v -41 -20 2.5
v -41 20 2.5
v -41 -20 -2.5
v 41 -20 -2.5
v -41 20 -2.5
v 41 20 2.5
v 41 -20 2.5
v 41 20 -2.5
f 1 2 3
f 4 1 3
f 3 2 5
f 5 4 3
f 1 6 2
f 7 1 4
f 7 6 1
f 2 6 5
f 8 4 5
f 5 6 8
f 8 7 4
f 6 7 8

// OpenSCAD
polyhedron(points=[[-41.0, -20.0, -2.5], [-41.0, -20.0, 2.5], [-41.0, 20.0, -2.5], [-41.0, 20.0, 2.5], [41.0, -20.0, -2.5], [41.0, -20.0, 2.5], [41.0, 20.0, -2.5], [41.0, 20.0, 2.5]], faces=[[1, 3, 0], [4, 1, 0], [0, 3, 2], [2, 4, 0], [1, 7, 3], [5, 1, 4], [5, 7, 1], [3, 7, 2], [6, 4, 2], [2, 7, 6], [6, 5, 4], [7, 5, 6]], convexity=30);
